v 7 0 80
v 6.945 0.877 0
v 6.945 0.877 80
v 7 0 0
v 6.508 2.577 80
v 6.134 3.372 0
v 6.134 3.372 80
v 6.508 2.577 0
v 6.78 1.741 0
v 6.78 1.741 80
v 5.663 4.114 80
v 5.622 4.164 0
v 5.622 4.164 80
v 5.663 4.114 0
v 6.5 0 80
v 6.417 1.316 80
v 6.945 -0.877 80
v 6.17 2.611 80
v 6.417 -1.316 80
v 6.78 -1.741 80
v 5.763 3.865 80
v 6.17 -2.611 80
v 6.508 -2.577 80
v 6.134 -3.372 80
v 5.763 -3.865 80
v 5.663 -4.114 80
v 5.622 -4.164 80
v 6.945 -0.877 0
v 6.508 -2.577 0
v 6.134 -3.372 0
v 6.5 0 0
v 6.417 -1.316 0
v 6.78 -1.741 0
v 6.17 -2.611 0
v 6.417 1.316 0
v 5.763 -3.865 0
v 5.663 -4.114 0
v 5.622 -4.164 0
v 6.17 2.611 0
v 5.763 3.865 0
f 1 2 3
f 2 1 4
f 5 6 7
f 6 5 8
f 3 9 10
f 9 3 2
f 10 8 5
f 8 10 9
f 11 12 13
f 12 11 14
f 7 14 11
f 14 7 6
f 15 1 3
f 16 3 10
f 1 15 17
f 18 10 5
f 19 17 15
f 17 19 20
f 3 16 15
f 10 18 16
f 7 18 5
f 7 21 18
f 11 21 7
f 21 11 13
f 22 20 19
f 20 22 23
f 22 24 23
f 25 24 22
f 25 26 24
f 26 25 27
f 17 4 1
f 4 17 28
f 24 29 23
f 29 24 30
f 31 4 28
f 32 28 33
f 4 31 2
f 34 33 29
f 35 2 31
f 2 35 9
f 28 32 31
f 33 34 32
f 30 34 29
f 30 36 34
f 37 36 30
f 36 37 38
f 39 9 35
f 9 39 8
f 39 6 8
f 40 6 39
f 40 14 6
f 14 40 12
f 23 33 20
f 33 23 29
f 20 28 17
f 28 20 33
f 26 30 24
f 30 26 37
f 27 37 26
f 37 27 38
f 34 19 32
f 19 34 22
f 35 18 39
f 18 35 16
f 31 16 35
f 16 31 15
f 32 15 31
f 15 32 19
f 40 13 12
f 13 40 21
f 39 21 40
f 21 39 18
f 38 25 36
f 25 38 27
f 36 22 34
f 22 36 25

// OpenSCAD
$fn = 50;


difference() {
	union() {
		cylinder(h = 80, r = 7.0000000000);
		translate(v = [-7.0000000000, 0, 0]) {
			cylinder(h = 80, r = 7.0000000000);
		}
	}
	union() {
		cylinder(h = 80, r = 3.2500000000);
		cylinder(h = 80, r = 1.8000000000);
		cylinder(h = 80, r = 1.8000000000);
		cylinder(h = 80, r = 1.8000000000);
		translate(v = [-11.5000000000, 0, 0]) {
			hull() {
				translate(v = [-3.7500000000, 0.0000000000, 0]) {
					cylinder(h = 80, r = 7.5000000000);
				}
				translate(v = [3.7500000000, 0.0000000000, 0]) {
					cylinder(h = 80, r = 7.5000000000);
				}
				translate(v = [-3.7500000000, -0.0000000000, 0]) {
					cylinder(h = 80, r = 7.5000000000);
				}
				translate(v = [3.7500000000, -0.0000000000, 0]) {
					cylinder(h = 80, r = 7.5000000000);
				}
			}
		}
		translate(v = [-4.0000000000, 0, 0.0000000000]) {
			cylinder(h = 80, r = 10.5000000000);
		}
	}
}
